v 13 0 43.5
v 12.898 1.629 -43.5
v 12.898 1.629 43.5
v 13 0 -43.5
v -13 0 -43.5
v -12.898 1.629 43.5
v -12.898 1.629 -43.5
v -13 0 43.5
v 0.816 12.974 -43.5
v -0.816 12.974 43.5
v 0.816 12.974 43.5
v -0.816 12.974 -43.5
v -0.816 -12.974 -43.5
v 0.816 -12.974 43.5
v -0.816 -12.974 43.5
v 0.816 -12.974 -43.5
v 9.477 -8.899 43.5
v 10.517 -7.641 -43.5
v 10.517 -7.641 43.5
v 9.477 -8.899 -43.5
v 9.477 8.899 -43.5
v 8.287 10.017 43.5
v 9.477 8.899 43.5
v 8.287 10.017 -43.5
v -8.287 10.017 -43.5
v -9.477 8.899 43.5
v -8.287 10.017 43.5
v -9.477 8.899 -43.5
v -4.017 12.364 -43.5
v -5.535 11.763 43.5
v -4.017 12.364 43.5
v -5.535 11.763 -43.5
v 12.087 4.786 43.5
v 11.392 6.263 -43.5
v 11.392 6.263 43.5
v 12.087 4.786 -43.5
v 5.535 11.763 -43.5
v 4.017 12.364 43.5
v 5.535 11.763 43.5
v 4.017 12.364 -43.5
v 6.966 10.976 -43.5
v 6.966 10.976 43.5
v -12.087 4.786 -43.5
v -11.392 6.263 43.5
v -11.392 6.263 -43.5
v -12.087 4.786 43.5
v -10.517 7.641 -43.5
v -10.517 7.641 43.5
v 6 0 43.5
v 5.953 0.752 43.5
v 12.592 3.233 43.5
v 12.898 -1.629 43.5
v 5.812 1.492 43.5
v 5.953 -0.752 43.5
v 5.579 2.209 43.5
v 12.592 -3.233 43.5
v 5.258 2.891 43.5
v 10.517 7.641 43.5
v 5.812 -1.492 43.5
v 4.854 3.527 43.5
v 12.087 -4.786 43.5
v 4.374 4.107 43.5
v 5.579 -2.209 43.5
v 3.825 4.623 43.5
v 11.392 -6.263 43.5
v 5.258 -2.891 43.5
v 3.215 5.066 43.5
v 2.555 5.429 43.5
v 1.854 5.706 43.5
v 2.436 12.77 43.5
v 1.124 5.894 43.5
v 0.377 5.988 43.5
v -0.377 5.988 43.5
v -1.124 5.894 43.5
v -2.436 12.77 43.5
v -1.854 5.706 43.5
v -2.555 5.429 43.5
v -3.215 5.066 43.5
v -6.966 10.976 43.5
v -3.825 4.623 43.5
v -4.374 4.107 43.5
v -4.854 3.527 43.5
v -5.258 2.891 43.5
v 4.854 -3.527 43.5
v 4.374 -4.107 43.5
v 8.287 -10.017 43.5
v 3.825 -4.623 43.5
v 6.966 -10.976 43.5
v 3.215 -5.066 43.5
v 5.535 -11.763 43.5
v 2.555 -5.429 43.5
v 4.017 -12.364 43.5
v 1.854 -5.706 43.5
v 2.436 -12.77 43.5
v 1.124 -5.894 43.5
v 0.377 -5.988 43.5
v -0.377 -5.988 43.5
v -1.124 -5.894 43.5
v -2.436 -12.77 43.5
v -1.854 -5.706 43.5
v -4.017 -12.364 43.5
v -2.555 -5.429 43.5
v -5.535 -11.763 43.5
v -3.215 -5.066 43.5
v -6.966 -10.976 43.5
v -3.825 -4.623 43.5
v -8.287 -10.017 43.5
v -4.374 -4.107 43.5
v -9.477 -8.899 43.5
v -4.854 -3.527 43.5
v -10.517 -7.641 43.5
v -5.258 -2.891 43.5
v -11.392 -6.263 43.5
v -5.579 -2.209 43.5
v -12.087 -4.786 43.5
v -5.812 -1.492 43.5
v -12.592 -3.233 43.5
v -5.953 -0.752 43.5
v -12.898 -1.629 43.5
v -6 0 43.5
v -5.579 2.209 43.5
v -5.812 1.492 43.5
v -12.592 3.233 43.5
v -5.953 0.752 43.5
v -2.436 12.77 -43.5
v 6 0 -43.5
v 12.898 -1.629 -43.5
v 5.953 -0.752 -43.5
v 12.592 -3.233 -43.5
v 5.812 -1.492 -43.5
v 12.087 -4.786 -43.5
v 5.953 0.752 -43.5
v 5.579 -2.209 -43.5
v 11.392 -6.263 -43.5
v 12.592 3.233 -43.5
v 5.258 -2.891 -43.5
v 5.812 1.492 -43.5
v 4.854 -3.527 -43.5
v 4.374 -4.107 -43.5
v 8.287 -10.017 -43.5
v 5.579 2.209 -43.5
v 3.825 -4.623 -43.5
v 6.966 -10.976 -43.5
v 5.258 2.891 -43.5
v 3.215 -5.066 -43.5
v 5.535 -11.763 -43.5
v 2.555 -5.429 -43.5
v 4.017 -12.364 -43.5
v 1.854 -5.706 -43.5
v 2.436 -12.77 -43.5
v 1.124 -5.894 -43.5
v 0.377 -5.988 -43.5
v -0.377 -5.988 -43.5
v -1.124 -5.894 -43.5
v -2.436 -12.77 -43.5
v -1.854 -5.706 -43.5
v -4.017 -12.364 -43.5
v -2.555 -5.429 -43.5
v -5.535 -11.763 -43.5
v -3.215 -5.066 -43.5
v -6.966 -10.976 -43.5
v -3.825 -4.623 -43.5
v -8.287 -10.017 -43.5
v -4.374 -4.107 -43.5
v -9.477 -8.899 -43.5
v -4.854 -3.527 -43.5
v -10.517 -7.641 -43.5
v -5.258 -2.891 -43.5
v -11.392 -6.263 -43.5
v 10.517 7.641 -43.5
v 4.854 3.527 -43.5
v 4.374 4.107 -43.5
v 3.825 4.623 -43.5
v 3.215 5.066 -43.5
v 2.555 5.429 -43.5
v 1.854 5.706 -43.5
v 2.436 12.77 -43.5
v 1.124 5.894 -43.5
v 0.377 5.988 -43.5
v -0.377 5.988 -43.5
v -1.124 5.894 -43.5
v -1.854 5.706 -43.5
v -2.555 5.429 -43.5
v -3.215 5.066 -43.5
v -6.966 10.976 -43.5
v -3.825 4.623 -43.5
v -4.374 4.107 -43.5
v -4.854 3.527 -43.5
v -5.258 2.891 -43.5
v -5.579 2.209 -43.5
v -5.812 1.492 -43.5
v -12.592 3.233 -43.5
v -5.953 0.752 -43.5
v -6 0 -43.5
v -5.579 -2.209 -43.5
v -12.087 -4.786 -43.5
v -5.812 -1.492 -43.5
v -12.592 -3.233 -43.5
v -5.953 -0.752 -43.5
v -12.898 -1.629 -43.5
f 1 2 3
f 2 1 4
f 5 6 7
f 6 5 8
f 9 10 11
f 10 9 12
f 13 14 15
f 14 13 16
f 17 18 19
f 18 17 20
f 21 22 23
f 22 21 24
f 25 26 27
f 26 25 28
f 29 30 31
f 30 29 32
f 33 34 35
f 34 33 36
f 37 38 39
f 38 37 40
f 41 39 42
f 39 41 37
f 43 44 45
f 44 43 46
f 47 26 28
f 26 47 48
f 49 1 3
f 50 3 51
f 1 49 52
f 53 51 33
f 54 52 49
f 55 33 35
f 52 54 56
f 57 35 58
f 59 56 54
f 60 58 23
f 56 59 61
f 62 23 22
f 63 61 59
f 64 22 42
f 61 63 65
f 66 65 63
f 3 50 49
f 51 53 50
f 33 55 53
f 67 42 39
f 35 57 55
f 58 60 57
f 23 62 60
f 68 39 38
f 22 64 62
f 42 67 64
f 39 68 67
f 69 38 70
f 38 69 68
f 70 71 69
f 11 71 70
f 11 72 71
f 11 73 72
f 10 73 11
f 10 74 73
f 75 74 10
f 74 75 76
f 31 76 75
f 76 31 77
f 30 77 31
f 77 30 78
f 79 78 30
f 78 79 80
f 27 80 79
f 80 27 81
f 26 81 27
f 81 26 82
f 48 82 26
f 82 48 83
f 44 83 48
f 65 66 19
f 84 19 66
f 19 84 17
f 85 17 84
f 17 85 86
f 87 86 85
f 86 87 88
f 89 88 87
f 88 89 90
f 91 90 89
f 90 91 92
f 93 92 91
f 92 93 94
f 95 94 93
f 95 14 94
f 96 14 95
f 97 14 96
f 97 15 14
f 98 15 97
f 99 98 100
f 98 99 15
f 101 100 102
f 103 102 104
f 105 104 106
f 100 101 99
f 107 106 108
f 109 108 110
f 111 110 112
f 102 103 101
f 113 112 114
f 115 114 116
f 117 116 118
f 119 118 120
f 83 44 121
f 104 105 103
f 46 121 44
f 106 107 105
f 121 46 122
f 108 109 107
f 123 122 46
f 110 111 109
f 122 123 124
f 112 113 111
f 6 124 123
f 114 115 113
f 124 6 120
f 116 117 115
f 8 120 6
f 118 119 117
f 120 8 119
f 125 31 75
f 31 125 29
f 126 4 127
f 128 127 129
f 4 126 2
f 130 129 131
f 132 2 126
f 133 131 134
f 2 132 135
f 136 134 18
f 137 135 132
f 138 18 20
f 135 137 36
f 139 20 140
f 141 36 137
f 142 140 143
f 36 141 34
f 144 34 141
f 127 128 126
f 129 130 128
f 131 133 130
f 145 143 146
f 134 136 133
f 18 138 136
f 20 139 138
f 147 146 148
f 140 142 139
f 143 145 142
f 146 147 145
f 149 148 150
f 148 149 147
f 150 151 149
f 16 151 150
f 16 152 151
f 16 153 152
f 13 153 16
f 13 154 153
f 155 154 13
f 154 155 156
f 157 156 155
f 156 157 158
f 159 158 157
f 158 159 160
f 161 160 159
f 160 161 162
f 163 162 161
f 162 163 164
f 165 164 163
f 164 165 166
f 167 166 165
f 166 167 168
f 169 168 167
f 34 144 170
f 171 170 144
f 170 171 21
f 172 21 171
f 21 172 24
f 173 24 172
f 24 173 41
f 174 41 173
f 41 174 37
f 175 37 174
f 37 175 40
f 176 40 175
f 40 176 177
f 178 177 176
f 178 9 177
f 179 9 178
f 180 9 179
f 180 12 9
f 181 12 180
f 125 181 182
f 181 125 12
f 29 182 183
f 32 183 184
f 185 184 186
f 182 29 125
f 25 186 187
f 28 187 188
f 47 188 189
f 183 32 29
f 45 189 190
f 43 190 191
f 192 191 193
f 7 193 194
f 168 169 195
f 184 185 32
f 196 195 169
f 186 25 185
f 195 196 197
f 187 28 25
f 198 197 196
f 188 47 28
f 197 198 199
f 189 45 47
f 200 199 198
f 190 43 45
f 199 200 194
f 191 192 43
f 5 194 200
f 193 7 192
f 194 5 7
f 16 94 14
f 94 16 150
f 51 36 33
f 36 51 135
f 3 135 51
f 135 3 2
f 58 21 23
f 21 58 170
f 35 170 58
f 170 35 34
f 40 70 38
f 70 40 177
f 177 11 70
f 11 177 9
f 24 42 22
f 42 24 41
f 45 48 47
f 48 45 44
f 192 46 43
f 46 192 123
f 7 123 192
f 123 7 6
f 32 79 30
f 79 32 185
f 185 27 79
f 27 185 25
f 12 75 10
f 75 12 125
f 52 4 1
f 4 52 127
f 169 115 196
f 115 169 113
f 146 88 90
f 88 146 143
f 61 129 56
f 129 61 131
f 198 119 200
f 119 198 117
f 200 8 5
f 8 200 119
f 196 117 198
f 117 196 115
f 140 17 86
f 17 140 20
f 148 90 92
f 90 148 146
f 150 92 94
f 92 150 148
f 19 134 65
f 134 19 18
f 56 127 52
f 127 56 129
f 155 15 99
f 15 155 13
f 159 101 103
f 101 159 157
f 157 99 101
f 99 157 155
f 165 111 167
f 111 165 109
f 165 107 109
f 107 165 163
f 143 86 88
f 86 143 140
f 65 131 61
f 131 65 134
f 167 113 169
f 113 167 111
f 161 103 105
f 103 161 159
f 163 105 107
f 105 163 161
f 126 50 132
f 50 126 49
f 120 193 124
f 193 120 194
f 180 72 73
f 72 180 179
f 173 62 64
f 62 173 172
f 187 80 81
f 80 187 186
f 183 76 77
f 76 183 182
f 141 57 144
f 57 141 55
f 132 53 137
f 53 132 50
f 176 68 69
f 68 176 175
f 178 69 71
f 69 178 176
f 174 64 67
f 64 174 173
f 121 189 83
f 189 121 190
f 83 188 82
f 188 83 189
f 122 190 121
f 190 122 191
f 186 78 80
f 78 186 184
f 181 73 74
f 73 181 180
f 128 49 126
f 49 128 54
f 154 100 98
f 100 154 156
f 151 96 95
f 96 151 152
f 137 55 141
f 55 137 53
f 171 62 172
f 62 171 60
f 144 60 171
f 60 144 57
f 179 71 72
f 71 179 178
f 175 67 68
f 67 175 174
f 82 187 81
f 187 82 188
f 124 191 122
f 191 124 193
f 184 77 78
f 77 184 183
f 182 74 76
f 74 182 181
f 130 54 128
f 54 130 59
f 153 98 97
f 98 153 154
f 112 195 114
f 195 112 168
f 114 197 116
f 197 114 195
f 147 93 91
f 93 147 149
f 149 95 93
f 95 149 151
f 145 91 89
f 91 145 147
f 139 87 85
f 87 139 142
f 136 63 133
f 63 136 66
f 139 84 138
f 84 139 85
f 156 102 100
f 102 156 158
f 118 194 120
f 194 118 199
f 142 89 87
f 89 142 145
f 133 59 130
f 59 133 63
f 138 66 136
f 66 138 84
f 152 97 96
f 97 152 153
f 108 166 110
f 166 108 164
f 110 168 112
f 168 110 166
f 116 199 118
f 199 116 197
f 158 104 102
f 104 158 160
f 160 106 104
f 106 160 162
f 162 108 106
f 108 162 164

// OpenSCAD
$fn = 50;


difference() {
	union() {
		translate(v = [0, 0, -43.5000000000]) {
			cylinder(h = 87, r = 13.0000000000);
		}
	}
	union() {
		translate(v = [0, 0, -100.0000000000]) {
			cylinder(h = 200, r = 6);
		}
	}
}
